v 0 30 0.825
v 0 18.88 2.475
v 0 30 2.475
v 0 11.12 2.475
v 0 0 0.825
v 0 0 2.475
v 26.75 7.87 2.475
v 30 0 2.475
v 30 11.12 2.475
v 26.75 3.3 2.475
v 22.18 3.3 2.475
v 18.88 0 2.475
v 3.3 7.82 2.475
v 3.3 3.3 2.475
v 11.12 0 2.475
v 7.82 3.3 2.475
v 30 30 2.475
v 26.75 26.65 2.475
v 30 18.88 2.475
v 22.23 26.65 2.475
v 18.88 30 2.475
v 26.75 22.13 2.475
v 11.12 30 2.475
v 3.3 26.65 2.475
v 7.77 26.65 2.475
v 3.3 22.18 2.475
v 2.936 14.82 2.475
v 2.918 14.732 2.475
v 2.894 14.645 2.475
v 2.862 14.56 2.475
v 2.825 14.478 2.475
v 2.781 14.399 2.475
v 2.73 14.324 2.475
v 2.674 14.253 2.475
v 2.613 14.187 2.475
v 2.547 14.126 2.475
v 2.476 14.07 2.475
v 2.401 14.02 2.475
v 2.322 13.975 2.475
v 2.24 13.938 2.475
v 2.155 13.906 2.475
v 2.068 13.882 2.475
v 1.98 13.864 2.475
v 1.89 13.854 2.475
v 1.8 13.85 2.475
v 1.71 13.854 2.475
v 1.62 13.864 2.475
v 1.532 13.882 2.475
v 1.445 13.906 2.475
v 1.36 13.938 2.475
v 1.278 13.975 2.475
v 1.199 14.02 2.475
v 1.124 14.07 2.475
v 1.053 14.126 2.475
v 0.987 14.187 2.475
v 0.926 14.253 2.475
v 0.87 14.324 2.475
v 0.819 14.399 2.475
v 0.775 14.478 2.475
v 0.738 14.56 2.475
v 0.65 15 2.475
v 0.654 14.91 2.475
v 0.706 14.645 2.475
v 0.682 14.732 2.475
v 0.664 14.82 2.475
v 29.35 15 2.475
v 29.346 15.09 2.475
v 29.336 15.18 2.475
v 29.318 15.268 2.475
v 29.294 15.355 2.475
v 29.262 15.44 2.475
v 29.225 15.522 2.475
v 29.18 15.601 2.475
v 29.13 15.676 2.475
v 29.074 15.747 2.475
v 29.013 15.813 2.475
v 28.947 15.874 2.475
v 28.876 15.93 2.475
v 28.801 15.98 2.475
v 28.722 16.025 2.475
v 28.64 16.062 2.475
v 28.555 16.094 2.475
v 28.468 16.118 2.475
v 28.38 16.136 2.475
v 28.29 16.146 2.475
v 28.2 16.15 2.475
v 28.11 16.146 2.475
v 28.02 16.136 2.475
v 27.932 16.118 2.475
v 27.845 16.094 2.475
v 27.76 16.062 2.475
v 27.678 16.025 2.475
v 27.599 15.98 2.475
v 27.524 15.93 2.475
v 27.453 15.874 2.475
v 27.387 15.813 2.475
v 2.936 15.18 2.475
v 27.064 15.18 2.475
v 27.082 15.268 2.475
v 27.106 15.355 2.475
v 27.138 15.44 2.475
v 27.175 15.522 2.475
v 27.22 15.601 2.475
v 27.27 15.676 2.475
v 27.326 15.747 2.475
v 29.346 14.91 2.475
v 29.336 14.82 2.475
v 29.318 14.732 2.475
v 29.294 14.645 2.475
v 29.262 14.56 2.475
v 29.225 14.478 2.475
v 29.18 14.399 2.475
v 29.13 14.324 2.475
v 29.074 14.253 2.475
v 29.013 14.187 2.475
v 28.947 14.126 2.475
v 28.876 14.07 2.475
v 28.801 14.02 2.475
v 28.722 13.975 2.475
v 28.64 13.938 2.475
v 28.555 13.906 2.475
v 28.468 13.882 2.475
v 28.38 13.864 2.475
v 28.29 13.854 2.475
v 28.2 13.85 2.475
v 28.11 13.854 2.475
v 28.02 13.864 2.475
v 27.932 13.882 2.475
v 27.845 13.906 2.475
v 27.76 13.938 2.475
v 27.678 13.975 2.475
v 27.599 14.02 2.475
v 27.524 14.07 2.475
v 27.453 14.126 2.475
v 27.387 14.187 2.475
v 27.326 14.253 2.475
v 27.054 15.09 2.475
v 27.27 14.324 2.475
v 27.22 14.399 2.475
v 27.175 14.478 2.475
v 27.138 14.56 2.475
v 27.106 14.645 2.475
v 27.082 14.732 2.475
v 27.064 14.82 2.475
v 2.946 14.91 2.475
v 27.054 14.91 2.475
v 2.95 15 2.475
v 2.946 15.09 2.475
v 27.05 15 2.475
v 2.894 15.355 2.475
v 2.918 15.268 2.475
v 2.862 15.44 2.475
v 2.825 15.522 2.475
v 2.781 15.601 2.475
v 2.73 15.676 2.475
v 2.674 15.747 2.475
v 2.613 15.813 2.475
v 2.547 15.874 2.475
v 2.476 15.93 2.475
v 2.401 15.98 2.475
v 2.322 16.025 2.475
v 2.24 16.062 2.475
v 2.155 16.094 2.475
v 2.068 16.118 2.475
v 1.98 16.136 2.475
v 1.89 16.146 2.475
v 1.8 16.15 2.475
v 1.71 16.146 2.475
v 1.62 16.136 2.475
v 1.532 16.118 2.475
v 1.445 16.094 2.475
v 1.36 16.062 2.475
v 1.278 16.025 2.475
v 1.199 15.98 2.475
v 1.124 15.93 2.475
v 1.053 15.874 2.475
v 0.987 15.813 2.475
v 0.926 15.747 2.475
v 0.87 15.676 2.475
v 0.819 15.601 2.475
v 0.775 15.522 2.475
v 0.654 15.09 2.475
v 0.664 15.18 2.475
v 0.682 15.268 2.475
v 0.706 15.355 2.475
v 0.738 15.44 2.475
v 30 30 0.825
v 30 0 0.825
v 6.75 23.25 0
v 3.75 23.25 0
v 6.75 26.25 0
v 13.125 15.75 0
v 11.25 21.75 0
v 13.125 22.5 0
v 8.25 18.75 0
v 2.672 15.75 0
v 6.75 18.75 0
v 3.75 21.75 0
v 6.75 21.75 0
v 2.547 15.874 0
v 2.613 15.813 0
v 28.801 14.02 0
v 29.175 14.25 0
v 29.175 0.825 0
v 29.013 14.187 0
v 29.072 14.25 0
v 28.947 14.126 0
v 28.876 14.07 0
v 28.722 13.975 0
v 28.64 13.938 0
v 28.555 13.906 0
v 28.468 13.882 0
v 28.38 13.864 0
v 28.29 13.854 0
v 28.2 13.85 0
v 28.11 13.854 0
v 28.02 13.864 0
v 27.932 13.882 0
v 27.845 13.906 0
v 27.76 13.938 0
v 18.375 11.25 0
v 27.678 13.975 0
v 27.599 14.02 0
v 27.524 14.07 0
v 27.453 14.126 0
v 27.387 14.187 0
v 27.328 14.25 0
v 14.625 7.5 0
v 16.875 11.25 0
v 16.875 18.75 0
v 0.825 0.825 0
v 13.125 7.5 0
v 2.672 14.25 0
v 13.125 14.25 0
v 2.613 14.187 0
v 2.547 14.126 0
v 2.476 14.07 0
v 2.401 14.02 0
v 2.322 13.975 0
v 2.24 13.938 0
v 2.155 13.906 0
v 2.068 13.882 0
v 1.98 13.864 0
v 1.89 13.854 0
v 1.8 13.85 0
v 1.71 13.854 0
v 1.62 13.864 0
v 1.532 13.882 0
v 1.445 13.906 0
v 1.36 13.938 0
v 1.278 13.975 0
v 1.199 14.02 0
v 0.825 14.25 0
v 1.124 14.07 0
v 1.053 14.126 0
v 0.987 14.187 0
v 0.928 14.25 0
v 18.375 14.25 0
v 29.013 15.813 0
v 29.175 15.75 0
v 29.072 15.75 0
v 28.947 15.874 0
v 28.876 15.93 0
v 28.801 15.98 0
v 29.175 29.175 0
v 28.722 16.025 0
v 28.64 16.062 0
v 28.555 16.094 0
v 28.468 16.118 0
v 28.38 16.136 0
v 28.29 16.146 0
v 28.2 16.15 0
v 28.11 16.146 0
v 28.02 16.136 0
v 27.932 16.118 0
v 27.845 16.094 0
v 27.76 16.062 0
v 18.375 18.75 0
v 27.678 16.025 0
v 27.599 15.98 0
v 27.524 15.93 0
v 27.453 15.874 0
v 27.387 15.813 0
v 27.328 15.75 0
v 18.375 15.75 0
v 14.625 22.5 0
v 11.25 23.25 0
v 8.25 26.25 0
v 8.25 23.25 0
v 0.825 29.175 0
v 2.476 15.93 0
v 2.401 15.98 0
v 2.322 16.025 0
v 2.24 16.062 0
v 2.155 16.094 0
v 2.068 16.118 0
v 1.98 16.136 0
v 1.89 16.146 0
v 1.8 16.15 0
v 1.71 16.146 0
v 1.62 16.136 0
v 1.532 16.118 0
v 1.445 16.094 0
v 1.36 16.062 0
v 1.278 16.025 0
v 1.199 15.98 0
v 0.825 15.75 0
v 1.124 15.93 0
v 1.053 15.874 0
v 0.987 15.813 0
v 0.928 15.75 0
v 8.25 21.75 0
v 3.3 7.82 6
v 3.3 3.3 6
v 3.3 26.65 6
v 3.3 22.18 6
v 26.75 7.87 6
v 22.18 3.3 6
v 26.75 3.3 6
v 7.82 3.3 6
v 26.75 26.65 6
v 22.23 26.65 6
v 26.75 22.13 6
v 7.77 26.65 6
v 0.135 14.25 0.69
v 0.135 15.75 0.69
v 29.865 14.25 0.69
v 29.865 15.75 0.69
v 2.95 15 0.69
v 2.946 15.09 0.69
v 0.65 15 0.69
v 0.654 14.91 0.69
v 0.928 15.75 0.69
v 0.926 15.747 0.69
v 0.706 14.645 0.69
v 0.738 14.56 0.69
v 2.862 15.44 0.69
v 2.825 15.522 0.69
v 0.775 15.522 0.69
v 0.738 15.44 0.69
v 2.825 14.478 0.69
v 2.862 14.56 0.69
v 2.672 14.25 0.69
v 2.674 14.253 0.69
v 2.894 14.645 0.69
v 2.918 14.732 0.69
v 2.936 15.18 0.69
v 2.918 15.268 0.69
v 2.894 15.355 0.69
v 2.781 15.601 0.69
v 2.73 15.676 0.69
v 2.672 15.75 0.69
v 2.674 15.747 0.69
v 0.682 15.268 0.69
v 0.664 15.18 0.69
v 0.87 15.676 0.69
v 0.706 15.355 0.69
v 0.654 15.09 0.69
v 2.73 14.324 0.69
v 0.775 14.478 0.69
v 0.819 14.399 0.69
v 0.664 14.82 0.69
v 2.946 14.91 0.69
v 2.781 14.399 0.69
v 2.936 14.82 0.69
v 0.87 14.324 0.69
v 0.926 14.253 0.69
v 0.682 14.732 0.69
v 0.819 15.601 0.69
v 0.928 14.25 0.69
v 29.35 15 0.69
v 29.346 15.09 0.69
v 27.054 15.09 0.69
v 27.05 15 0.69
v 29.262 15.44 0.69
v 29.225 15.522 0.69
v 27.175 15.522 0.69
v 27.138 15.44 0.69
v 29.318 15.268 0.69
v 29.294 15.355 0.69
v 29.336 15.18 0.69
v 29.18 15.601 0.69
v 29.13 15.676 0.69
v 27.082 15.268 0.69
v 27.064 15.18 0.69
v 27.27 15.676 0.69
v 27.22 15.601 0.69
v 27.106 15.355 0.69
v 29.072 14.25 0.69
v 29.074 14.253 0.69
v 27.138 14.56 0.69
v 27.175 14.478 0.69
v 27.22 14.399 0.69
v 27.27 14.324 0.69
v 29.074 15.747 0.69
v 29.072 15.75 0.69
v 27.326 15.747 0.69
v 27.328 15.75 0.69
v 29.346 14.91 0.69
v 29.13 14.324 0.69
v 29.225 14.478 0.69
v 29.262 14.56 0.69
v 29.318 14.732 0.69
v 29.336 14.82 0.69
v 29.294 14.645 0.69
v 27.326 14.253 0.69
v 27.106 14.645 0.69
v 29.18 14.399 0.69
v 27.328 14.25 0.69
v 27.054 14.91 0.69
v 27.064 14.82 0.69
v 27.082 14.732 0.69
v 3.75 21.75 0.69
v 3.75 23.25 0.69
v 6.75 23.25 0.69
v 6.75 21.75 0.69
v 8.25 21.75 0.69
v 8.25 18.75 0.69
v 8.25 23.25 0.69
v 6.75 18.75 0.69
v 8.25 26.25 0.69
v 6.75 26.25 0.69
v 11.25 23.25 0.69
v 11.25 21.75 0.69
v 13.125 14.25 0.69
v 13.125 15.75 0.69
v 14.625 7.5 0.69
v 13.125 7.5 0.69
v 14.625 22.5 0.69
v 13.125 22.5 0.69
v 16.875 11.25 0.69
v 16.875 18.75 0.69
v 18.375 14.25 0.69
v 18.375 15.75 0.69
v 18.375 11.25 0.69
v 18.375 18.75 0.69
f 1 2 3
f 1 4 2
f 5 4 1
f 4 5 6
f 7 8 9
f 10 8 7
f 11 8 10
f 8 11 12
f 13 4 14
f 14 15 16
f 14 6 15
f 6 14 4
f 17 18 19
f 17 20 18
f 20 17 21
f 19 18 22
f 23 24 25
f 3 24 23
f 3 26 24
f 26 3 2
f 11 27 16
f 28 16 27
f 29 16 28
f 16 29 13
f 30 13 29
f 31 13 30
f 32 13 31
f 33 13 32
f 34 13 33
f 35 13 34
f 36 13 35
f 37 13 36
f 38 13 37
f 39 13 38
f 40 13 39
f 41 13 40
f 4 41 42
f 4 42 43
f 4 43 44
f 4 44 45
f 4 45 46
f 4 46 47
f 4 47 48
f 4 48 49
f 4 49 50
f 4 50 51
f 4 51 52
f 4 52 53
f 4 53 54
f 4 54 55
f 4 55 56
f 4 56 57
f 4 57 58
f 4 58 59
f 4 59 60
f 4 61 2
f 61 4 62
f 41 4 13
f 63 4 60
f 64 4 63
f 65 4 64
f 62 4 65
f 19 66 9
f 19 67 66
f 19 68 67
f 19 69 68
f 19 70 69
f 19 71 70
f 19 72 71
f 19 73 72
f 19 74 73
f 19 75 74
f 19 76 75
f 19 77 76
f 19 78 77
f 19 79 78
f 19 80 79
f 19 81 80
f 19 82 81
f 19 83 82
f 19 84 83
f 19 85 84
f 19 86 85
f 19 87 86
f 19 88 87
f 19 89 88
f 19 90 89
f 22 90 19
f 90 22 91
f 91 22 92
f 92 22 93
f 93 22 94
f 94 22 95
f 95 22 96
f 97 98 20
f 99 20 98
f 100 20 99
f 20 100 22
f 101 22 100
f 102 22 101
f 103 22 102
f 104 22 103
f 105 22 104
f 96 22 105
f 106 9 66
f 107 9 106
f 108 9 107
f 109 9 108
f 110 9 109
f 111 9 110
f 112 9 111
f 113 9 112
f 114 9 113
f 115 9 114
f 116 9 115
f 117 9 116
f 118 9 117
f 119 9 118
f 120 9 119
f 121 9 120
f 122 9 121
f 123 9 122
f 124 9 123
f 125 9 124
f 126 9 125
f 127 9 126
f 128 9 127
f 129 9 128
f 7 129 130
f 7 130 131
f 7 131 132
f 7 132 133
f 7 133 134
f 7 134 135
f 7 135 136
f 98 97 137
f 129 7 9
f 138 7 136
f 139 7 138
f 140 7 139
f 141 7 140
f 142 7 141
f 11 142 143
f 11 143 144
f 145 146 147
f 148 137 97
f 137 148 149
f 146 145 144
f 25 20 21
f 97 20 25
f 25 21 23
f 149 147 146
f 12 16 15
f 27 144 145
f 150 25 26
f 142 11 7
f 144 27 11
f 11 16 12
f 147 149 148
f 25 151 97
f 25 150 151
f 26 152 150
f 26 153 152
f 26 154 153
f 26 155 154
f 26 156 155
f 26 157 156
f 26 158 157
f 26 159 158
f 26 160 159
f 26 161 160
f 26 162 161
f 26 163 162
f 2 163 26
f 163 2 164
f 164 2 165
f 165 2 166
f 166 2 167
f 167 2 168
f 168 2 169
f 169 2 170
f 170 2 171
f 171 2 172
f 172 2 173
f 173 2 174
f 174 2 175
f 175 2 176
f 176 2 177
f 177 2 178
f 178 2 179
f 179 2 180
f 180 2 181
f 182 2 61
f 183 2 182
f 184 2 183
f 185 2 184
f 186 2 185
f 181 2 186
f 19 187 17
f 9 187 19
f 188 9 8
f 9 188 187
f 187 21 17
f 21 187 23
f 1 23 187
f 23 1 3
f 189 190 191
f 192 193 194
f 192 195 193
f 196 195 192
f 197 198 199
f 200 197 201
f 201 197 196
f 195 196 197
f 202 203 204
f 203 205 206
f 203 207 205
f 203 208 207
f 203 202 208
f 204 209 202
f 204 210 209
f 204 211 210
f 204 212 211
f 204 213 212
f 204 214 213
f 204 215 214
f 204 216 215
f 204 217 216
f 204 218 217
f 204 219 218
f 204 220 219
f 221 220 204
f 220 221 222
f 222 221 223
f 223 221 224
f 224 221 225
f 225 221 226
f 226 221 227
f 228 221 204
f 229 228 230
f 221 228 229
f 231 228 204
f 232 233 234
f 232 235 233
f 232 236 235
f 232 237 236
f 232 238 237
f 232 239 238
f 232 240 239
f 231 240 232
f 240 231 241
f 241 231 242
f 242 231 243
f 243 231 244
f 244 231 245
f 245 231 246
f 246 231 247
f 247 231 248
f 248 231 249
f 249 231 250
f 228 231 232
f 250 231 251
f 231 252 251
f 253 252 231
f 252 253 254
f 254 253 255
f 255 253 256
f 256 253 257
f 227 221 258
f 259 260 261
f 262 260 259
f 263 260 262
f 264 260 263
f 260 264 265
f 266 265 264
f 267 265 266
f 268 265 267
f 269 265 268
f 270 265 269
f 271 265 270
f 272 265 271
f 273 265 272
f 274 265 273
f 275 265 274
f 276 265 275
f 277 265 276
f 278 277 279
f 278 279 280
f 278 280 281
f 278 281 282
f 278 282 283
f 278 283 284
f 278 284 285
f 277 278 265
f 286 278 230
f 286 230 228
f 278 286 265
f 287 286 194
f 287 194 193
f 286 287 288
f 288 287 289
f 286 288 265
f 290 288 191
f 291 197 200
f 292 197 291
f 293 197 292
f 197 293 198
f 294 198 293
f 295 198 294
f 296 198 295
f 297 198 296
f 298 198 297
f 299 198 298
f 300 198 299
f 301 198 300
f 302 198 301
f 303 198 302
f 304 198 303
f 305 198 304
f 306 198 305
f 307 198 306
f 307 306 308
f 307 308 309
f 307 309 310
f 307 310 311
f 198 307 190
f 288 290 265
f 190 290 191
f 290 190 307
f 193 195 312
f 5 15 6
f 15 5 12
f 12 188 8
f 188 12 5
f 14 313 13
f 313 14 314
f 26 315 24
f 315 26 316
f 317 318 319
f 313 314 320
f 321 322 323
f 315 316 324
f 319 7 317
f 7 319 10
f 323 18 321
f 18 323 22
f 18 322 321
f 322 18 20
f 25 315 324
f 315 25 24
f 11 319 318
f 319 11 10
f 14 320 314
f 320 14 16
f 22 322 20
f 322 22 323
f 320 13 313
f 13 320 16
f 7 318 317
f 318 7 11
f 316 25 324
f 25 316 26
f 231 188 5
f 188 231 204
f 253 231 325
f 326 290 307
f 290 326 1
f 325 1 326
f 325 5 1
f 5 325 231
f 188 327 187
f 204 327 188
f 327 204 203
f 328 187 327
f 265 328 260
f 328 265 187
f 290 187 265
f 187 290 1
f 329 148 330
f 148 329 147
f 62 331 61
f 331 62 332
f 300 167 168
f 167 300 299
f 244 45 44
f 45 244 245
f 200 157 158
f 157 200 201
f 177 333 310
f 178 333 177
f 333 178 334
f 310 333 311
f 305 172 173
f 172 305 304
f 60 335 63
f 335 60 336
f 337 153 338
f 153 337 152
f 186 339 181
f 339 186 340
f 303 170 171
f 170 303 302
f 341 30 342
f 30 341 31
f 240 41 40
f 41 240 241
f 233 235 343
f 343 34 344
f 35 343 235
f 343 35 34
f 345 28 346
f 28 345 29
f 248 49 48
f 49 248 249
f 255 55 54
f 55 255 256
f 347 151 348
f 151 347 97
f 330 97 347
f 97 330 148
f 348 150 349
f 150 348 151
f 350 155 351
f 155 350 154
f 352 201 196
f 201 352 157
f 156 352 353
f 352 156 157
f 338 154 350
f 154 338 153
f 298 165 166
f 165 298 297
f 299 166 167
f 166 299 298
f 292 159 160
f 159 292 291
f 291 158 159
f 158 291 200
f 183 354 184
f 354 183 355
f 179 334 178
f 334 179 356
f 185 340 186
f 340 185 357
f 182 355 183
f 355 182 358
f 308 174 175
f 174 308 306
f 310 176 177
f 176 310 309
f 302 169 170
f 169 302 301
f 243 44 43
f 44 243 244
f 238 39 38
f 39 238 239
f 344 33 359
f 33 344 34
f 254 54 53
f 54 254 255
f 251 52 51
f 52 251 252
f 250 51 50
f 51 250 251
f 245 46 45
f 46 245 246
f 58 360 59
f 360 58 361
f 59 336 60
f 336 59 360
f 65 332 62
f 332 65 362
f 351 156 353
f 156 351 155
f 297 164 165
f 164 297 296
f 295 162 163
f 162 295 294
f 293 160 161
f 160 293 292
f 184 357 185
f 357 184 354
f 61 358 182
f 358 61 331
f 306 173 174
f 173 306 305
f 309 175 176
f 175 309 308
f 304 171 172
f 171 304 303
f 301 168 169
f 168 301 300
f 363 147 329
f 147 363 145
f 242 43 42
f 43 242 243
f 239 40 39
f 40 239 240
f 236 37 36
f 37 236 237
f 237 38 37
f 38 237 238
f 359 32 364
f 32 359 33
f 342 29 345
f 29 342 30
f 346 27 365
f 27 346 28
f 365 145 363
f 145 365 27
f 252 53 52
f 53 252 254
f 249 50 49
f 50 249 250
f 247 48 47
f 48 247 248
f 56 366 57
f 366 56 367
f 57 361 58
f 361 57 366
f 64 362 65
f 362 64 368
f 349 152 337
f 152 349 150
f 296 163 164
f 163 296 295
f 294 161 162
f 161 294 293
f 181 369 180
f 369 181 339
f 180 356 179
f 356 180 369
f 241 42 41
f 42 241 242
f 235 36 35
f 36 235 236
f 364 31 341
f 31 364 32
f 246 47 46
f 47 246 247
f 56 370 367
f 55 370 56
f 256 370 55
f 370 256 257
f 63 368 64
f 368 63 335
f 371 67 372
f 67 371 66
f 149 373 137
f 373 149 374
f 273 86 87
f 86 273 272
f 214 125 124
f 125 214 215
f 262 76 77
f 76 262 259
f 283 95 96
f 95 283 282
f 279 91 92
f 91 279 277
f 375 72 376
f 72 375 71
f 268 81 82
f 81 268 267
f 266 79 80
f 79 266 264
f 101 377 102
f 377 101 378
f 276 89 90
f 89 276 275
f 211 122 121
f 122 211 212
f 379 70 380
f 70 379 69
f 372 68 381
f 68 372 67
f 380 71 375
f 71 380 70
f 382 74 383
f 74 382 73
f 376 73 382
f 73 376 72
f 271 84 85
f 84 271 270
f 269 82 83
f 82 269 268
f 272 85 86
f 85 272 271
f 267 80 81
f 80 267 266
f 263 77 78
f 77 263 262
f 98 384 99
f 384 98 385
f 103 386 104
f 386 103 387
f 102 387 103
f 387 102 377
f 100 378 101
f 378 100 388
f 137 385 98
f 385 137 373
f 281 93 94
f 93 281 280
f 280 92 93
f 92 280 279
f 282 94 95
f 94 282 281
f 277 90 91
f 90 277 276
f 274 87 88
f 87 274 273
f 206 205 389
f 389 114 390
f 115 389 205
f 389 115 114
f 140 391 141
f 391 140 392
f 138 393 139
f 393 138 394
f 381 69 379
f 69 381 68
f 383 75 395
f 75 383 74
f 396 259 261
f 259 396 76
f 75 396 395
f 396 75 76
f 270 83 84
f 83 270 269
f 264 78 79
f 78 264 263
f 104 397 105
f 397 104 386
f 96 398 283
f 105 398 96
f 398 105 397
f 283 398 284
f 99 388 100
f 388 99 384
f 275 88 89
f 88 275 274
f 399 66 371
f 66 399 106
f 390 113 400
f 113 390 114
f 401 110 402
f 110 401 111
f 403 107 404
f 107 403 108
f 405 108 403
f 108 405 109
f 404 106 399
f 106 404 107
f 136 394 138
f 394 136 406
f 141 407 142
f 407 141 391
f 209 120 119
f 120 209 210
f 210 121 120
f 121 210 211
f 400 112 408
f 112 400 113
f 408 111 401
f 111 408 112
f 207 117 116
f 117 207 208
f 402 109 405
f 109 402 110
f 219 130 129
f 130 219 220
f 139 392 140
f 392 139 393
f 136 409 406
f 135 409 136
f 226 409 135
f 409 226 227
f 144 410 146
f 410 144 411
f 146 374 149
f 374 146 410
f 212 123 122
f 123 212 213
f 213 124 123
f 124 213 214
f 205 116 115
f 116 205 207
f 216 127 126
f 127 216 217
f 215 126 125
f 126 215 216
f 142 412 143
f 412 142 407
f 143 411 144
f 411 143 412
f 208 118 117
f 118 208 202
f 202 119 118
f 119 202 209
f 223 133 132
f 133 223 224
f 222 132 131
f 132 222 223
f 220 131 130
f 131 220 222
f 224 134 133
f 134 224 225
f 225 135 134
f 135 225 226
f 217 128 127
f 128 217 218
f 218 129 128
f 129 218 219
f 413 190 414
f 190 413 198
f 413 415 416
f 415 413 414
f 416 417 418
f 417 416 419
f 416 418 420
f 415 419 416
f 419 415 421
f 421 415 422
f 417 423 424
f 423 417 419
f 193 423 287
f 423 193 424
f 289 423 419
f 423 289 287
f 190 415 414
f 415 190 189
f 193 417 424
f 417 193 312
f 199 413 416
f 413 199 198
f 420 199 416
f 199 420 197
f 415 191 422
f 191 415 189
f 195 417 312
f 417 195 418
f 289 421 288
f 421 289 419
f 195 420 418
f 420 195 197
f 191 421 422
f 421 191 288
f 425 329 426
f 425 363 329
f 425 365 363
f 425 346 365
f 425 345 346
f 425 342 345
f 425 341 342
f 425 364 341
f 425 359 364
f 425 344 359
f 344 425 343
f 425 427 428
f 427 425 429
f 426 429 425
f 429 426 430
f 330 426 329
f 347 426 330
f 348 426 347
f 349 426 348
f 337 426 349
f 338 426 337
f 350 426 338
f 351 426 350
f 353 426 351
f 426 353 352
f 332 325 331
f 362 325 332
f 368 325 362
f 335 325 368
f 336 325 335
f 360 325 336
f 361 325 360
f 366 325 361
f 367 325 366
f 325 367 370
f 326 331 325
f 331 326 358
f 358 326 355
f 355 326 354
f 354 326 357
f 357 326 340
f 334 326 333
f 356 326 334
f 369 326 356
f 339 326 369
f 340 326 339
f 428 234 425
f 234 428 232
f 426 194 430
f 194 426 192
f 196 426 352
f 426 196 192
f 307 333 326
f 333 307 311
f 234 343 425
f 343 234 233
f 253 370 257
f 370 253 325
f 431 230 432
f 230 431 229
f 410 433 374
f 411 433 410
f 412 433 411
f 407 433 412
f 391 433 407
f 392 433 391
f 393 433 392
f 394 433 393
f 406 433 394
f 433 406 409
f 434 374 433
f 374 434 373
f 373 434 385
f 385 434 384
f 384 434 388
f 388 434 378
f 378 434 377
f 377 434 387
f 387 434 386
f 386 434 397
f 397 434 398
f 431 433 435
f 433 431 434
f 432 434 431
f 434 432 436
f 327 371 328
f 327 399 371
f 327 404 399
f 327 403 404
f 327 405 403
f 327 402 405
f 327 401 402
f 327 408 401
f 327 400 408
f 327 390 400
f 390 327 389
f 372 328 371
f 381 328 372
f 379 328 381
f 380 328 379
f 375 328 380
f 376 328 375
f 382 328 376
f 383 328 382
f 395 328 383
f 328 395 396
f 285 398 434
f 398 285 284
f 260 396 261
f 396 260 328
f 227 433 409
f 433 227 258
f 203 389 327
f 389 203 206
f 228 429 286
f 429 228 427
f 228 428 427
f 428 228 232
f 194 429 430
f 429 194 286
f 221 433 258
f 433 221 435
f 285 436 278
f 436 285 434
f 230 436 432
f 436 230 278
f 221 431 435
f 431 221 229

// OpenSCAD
// file: sym_plus.scad
module plus(size, thickness, height)
{
    translate([-size/2,-thickness/2, 0]) cube([size, thickness, height]);
    translate([-thickness/2,-size/2, 0]) cube([thickness, size, height]);
}
// file: settings.scad
cube_width=30;
cube_height=16;
cube_thickness=3.3;

cap_width=30;
cap_height=6;
cap_thickness=3.3;

glyph_depth=0.7;
glyph_thickness=1.5;

photo_resitor_hole_r = 3.1;
spring_contact_hole_r = 3.35;
// file: sym_battery.scad
use <sym_plus.scad>

module battery(length, width, thickness, height)
{
    translate([0,-thickness/2,0])cube([length/2-width/8, thickness, height]);
    translate([(length/2+width/8),-thickness/2,0])cube([(length/2-width/8), thickness, height]);
    
    translate([(length-width/4)/2,-width/2, 0])cube([thickness, width, height]);
    translate([(length+width/4)/2,-width/4, 0])cube([thickness, width/2, height]);

    
    translate([length/2-width/2, 2*width/4,0]) plus(width/2, thickness, height);
}

battery(30, 12, 1, 1);
// file: cap_1x1.scad
include <settings.scad>

module cap_1x1(width, height, thickness, holes_mask)
{
    width1=width-thickness;
    difference()
    {
        union()
        {
            cube([width, width, thickness*3/4]);
            translate([thickness,thickness,0])cube([width-2*thickness, width-2*thickness, height]);
        }
        union()
        {
            translate([width/2,width/2,0])rotate([0,0,45])translate([-width1/2,-width1/2,thickness*3/4]) cube([width1,width1,height]);
                        //corners
            translate([0,0.25*thickness,0])rotate([45,0,0]) translate([-0.5*width, -width, -0.5*height]) cube([2*width, width, 2*height]);
            translate([0.25*thickness,0,0]) rotate([0,-45,0]) translate([-width, -0.5*width, -0.5*height]) cube([width, 2*width, 2*height]);
            translate([width-0.25*thickness,0,0]) rotate([0,45,0]) translate([0, 0, -0.5*height]) cube([width, 2*width, 2*height]);
            translate([0,width-0.25*thickness,0]) rotate([-45,0,0]) translate([-0.5*width, 0, -0.5*height]) cube([2*width, width, 2*height]);
            
            if (holes_mask >= 8)
            {
                translate([width/2, thickness-1.5, -0.5]) cylinder(r=1.15, h=height*1.5, $fn=80);
            }
            if ((holes_mask%8) >= 4)
            {
                translate([width/2, width-thickness+1.5, -0.5]) cylinder(r=1.15, h=height*1.5, $fn=80);
            }
            if ((holes_mask%4)>= 2)
            {
                translate([thickness-1.5, width/2, -0.5]) cylinder(r=1.15, h=height*1.5, $fn=80);
            }
            if (holes_mask%2 >= 1)
            {
                translate([width-thickness+1.5, width/2, -0.5]) cylinder(r=1.15, h=height*1.5, $fn=80);
            }
        }
    }
}

cap_1x1(cap_width, cap_height, cap_thickness, 9);
//ring(10,1,1);
//arrow(1, 20, 3, 1);
//transistor_npn(30, 1, 1);
// main file
use <cap_1x1.scad>
use <sym_battery.scad>
include <settings.scad>

module cap_1x1_battery(width, height, thickness)
{
    difference()
    {
        cap_1x1(width, height, thickness, 3);
        translate([0,width/2,-0.01]) battery(width, width/2, glyph_thickness, glyph_depth);
    }
}

cap_1x1_battery(cap_width, cap_height, cap_thickness);
